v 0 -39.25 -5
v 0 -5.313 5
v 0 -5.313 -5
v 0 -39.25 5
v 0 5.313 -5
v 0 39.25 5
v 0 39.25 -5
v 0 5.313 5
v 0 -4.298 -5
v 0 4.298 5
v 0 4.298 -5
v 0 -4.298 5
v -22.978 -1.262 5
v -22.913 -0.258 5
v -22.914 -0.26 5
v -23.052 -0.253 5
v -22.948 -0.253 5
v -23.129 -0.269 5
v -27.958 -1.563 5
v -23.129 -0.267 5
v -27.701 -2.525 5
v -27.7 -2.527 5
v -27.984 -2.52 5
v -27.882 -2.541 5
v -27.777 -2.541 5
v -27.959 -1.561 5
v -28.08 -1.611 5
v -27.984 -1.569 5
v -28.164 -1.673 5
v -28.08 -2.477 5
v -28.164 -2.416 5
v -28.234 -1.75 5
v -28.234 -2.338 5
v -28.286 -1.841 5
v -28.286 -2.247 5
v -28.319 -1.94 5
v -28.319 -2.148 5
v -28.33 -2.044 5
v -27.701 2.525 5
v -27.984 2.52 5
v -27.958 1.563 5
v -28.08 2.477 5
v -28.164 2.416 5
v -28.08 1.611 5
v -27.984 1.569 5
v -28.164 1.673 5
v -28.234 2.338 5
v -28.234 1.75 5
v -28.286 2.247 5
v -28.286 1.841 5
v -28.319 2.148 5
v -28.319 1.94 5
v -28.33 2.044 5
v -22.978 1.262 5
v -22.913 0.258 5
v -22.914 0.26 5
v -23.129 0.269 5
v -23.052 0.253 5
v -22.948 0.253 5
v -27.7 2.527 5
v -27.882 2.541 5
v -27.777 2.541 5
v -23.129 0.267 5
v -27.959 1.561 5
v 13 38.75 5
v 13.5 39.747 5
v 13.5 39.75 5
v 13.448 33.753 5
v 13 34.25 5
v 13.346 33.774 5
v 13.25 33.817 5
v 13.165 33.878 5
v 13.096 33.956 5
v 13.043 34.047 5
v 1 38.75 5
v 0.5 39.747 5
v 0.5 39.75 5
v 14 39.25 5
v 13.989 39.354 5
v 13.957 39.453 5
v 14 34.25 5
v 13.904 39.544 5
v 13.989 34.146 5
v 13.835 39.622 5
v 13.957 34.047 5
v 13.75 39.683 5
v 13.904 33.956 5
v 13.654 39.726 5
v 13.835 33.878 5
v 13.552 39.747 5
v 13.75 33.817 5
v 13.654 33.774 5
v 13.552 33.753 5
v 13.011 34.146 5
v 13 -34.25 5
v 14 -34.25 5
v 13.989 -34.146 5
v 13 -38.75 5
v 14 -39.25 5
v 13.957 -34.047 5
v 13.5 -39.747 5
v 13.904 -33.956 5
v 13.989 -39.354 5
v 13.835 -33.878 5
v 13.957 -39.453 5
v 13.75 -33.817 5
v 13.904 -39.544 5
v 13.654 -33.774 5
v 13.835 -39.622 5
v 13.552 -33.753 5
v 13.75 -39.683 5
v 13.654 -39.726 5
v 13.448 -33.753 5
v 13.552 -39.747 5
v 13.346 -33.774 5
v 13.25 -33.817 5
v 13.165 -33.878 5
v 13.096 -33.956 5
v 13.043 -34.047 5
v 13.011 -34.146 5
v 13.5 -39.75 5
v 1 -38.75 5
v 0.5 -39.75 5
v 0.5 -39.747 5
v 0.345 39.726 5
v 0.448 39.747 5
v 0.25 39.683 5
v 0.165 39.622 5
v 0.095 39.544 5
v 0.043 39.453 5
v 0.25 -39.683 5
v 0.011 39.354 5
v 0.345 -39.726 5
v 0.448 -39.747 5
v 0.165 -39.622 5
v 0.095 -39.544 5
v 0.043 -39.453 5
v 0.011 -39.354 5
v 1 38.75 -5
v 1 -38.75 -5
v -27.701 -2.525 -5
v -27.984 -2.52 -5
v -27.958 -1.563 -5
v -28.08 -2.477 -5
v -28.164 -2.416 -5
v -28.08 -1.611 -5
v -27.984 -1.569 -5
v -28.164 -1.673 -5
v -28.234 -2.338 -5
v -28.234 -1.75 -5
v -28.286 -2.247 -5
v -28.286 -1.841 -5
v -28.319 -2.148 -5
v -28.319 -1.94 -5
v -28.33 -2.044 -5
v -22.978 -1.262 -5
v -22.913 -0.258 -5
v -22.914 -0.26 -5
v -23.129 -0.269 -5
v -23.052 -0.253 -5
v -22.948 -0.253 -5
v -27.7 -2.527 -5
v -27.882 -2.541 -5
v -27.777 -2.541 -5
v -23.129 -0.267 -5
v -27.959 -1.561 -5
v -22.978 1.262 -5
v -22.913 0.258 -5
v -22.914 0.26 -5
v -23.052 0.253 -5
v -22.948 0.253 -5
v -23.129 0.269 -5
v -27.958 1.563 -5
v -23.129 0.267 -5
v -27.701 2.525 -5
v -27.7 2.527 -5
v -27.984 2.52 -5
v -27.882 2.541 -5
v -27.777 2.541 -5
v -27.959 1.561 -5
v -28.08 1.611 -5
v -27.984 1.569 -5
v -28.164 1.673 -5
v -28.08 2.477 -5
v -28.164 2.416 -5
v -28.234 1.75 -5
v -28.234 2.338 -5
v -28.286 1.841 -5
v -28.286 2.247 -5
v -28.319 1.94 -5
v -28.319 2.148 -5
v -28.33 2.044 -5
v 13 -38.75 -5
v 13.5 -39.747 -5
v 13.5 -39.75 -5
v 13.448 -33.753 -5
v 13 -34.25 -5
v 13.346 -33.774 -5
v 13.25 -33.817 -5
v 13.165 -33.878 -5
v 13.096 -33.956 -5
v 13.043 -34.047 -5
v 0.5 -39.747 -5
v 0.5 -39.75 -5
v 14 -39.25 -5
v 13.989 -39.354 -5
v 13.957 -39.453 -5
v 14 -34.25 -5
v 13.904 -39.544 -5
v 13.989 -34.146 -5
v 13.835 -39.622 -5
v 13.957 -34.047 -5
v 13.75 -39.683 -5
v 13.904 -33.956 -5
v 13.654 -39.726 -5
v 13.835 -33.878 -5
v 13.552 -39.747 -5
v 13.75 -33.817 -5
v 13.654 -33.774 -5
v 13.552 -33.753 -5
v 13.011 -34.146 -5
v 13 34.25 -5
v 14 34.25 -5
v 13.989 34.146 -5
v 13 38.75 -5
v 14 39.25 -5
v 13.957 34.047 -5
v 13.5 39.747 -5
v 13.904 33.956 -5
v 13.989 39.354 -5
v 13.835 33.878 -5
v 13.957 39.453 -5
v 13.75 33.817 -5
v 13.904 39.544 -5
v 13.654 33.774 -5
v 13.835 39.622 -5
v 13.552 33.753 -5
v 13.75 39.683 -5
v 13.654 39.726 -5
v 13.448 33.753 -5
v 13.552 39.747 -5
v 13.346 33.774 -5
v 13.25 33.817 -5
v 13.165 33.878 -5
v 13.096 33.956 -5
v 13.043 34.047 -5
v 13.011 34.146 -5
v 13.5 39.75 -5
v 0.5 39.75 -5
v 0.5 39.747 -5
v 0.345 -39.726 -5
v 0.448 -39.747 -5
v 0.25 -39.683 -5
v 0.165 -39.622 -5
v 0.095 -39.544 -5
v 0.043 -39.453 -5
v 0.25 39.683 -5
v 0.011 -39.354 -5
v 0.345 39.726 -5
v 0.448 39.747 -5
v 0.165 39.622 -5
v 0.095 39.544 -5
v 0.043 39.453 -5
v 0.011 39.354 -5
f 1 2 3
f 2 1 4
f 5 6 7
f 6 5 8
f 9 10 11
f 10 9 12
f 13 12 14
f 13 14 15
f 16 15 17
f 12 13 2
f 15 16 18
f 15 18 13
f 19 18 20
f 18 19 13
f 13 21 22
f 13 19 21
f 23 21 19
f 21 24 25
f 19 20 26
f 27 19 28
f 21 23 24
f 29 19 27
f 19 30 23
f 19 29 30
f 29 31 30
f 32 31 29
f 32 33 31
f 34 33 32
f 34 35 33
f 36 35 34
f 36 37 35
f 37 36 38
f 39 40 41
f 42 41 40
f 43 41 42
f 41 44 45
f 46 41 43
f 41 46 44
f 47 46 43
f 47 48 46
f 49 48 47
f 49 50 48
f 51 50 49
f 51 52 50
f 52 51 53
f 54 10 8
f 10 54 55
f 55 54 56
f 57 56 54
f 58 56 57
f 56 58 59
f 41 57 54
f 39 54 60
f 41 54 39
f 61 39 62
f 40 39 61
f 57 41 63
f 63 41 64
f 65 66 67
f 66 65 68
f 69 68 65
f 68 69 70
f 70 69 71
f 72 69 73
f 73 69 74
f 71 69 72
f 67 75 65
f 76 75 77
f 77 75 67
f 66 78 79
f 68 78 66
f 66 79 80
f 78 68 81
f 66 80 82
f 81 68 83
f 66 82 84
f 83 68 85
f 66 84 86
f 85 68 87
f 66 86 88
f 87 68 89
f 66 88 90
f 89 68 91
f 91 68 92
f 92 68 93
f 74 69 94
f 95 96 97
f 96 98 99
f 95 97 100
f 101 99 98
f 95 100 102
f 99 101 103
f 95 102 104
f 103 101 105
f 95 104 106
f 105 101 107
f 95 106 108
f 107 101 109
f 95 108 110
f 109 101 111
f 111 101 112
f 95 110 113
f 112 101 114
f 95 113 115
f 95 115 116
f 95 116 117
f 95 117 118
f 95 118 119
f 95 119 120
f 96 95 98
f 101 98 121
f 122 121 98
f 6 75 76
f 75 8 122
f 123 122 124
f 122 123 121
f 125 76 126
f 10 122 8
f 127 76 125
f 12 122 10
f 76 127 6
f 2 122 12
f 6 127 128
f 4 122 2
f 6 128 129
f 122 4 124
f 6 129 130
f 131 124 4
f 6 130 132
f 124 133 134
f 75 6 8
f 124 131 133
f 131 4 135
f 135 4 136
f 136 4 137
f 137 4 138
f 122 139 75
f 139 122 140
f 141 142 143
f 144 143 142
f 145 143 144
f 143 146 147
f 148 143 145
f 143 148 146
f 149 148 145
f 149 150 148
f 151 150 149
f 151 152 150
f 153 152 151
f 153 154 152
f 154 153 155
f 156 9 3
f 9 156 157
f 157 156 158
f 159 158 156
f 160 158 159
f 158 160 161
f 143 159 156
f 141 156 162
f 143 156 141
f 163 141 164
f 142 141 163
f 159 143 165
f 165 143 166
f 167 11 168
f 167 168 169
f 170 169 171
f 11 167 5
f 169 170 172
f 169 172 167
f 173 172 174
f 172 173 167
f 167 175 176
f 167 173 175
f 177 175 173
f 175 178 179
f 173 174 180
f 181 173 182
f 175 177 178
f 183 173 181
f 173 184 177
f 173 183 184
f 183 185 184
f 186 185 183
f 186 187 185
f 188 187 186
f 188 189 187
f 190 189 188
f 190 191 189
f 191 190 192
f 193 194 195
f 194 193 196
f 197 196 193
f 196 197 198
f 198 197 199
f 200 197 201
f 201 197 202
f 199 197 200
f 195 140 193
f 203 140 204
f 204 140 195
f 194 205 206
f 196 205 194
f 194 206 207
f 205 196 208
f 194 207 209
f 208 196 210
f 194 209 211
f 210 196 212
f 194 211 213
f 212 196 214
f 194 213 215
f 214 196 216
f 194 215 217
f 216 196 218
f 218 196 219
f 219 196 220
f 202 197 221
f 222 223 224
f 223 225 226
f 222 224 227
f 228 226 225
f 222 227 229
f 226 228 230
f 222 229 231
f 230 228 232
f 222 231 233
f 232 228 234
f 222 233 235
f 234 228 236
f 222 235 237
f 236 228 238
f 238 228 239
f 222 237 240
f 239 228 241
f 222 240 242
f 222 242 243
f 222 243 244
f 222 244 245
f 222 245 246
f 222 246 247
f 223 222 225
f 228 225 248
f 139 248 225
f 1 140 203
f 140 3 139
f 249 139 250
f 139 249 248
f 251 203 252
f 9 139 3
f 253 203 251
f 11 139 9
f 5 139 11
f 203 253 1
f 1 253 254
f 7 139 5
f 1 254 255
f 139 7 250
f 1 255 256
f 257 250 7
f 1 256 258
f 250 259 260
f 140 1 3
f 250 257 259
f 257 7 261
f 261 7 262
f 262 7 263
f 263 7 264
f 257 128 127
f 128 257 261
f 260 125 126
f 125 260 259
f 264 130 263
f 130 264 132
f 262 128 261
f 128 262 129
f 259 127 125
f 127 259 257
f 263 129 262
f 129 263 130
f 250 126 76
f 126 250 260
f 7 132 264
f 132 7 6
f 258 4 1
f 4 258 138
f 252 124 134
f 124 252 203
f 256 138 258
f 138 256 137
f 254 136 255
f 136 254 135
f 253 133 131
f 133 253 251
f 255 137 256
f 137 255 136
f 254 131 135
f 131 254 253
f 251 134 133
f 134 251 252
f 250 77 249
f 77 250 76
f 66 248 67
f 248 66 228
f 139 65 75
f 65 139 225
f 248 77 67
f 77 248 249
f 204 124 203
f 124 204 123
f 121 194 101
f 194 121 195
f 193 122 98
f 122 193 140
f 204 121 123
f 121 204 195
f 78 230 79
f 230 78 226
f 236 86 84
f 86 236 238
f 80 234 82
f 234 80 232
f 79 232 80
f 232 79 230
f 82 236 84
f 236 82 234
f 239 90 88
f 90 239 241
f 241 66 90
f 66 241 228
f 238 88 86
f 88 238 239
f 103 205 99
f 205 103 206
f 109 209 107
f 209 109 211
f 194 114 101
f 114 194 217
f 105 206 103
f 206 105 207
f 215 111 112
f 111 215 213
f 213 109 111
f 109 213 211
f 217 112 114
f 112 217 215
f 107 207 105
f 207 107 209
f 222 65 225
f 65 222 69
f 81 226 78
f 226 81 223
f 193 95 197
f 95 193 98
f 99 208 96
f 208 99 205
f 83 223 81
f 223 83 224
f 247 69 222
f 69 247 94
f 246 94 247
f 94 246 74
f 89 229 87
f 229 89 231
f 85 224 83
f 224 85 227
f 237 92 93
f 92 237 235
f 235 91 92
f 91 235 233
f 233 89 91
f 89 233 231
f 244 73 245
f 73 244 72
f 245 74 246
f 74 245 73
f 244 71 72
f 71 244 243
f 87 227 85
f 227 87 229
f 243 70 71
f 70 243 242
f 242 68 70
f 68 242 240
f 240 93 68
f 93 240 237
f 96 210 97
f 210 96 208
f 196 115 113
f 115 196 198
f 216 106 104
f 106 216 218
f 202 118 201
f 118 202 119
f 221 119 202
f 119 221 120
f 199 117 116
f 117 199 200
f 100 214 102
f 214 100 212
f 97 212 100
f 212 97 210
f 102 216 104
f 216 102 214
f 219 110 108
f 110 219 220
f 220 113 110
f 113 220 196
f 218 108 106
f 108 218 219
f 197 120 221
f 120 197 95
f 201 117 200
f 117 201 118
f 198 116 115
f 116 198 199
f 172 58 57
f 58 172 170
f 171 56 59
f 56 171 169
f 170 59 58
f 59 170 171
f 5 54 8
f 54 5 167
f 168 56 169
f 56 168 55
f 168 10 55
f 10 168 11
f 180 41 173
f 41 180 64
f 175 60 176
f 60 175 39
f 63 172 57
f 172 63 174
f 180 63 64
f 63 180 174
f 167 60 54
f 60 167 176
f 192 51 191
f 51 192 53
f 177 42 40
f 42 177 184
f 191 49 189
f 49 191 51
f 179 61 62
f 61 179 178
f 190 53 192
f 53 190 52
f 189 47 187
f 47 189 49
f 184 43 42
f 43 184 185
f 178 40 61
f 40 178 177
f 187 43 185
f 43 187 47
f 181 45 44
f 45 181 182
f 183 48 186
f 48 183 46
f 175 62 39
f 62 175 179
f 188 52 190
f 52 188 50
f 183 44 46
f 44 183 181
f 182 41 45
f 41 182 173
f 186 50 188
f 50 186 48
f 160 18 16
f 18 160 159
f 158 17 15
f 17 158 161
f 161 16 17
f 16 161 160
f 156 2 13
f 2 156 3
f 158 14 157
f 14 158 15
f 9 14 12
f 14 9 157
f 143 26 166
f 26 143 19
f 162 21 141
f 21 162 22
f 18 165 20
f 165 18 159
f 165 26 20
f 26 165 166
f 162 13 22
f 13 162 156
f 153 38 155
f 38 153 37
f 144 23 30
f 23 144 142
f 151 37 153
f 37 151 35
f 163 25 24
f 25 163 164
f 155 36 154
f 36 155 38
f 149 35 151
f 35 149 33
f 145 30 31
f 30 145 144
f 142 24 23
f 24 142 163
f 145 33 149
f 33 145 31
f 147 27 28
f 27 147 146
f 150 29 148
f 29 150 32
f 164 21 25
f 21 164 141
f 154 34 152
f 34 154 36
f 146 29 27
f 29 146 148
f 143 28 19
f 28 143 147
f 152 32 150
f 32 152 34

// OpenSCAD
//made by RevisionNr3

/* [Basic Settings] */

// Width (or height) of your smartphone in mm
//(take into account your smartphone cover if you use one)
smartphone_width=77.5; // 
// Thickness of your smartphone in mm
//(take into account your smartphone cover if you use one)
smartphone_thickness=12; //
// Height of the printed part. 20mm is enough to hold a phone.
bracket_height=10;
// Thickness of the printed part. 2.5 mm is a good value. The thicker, the stronger the part and clamp.
thickness=1; //[1:0.1:6]
// Rotation of the clamp. Adjust if you don't have a horizontal air frame.
clamp_rotation=0; //[0:1:70]
// Gap between the clamp. 0.5 works for most cars.
clamp_gap=0.5; //[0.1:0.1:5]
// Clamp length. A value around 25mm should work for most cars.
clamp_length=23;  //[15:1:50]

/* [Less important Settings] */

// Length of the small bracket ends
bracket_small_ends=5; //[3:1:15]
// Angle at which the clamp closes
clamp_angle1=20; //[15:1:35]
// Angle to center on air frame
clamp_angle2=30; //[30:1:45]
// Length of the small ends on the clamp
clamp_centering_length=5; //[3:1:10]

/* [hidden] */

//calculations
//------------

//calculate clamp height and width based on the previous parameters
clamp_width=calc_wc();
clamp_height=calc_hc();
clamp_width_rotated=calc_wc_rotated();
clamp_height_rotated=calc_hc_rotated();

// code for bracket
//----------------
bracket(thickness,bracket_height,smartphone_width,smartphone_thickness);

// code for clamp
//---------------
difference(){
    
rotate([clamp_rotation,0,0]){ //rotate the clamp around the angle, max 60°

clamp_one_side(thickness,clamp_length,clamp_height,clamp_gap);
mirror([0,1,0])
clamp_one_side(thickness,clamp_length,clamp_height,clamp_gap); 
}

//these cubes will cut off the top,bottom and sides of the clamps, so the clamp stays within the bracket's outside dimensions.
cube_for_cut();
mirror([0,0,1]) cube_for_cut();
cube_for_cut2();
mirror([0,1,0]) cube_for_cut2();
}

//modules
//-------

module bracket(thickness,height,smartphone_width,smartphone_thickness){
    
//long piece
    translate([thickness/2,0,0])
cube([thickness,smartphone_width+thickness,height],center=true);

//2 cylinders at end of long piece
translate([thickness/2,smartphone_width/2+thickness/2,0]) cylinder(h=height,r=thickness/2,center=true,$fn=30);

translate([thickness/2,-smartphone_width/2-thickness/2,0]) cylinder(h=height,r=thickness/2,center=true,$fn=30);

//2 short cubes to clamp phone
translate([smartphone_thickness/2+thickness,smartphone_width/2+thickness/2,0]) cube([smartphone_thickness+thickness,thickness,height],center=true);

translate([smartphone_thickness/2+thickness,-smartphone_width/2-thickness/2,0]) cube([smartphone_thickness+thickness,thickness,height],center=true);

//2 cylinders at end of previous cubes
translate([smartphone_thickness+3/2*thickness,smartphone_width/2+thickness/2,0]) cylinder(h=height,r=thickness/2,center=true,$fn=30);

translate([smartphone_thickness+3/2*thickness,-smartphone_width/2-thickness/2,0]) cylinder(h=height,r=thickness/2,center=true,$fn=30);

//2 cubes to keep smartphone in the bracket
translate([smartphone_thickness+3/2*thickness,smartphone_width/2-bracket_small_ends/2+thickness/2]) cube([thickness,bracket_small_ends,height],center=true);

translate([smartphone_thickness+3/2*thickness,-smartphone_width/2+bracket_small_ends/2-thickness/2,0]) cube([thickness,bracket_small_ends,height],center=true);

//2 cylinders at end of previous cubes
translate([smartphone_thickness+3/2*thickness,smartphone_width/2-bracket_small_ends+thickness/2,0]) cylinder(h=height,r=thickness/2,center=true,$fn=30);

translate([smartphone_thickness+3/2*thickness,-smartphone_width/2+bracket_small_ends-thickness/2,0]) cylinder(h=height,r=thickness/2,center=true,$fn=30);
}

module clamp_one_side(thickness,length,height,distance){
    
translate([-length,0,0]){    
//cylinder    
translate([0,thickness/2+distance/2,-height/2]) 
cylinder(r=thickness/2,h=height,$fn=30);

//cube
translate([0,thickness/2+distance/2,0])
rotate([0,0,clamp_angle1/2])
translate([1/2*(length/(cos(clamp_angle1/2))+thickness/2*tan(clamp_angle1/2)),0,0]) 
cube([length/cos(clamp_angle1/2)+thickness/2*tan(clamp_angle1/2),thickness,height],center=true);

//cube
translate([0,thickness/2+distance/2,0])
rotate([0,0,-clamp_angle2/2])
translate([-clamp_centering_length/2,0,0]) 
cube([clamp_centering_length,thickness,height],center=true);

//cylinder
translate([-cos(clamp_angle2/2)*clamp_centering_length,thickness/2+distance/2+sin(clamp_angle2/2)*clamp_centering_length,-height/2]) 
cylinder(r=thickness/2,h=height,$fn=30);
}
}

module cube_for_cut(){ //for cutting the clamp off in the length direction (length direction = x axis, same direction as smartphone thickness)
    
tl=calc_total_length();
tw=calc_total_width();

translate([-tl+thickness,-tw/2,bracket_height/2])
cube([tl,tw,clamp_height]);
}

module cube_for_cut2(){ //for cutting the clamp off in the width direction if needed (width direction = y axis, same direction as smartphone width)
    
tl=calc_total_length();
tw=calc_total_width();
    
translate([-tl+thickness,smartphone_width/2+thickness,-clamp_height/2])
cube([tl,tw,clamp_height]); 
}


//functions
//---------

function calc_wc()= //wc stands for width clamp
    2*clamp_length*tan(clamp_angle2/2)+2*thickness*cos(clamp_angle2/2)+clamp_gap;

function calc_hc()= //hc stands for height clamp
    bracket_height/cos(clamp_rotation)+calc_wc()*tan(clamp_rotation); //wb stands for width bracket, a max for the maximal angle to which the clamp can be rotated (i take this to be 60°)

function calc_hc_rotated()=
    bracket_height+2*calc_wc()*sin(clamp_rotation);

function calc_wc_rotated()=
    calc_wc()*cos(clamp_rotation)+calc_hc()*sin(clamp_rotation);

function calc_total_width()= //total width of the part (width in the same direction as smarthone width)
max(calc_wc_rotated(),smartphone_width+2*thickness);

function calc_total_length()= //total length of the part
2*thickness+smartphone_thickness+clamp_length+clamp_centering_length*cos(clamp_angle1/2)+thickness/2;
